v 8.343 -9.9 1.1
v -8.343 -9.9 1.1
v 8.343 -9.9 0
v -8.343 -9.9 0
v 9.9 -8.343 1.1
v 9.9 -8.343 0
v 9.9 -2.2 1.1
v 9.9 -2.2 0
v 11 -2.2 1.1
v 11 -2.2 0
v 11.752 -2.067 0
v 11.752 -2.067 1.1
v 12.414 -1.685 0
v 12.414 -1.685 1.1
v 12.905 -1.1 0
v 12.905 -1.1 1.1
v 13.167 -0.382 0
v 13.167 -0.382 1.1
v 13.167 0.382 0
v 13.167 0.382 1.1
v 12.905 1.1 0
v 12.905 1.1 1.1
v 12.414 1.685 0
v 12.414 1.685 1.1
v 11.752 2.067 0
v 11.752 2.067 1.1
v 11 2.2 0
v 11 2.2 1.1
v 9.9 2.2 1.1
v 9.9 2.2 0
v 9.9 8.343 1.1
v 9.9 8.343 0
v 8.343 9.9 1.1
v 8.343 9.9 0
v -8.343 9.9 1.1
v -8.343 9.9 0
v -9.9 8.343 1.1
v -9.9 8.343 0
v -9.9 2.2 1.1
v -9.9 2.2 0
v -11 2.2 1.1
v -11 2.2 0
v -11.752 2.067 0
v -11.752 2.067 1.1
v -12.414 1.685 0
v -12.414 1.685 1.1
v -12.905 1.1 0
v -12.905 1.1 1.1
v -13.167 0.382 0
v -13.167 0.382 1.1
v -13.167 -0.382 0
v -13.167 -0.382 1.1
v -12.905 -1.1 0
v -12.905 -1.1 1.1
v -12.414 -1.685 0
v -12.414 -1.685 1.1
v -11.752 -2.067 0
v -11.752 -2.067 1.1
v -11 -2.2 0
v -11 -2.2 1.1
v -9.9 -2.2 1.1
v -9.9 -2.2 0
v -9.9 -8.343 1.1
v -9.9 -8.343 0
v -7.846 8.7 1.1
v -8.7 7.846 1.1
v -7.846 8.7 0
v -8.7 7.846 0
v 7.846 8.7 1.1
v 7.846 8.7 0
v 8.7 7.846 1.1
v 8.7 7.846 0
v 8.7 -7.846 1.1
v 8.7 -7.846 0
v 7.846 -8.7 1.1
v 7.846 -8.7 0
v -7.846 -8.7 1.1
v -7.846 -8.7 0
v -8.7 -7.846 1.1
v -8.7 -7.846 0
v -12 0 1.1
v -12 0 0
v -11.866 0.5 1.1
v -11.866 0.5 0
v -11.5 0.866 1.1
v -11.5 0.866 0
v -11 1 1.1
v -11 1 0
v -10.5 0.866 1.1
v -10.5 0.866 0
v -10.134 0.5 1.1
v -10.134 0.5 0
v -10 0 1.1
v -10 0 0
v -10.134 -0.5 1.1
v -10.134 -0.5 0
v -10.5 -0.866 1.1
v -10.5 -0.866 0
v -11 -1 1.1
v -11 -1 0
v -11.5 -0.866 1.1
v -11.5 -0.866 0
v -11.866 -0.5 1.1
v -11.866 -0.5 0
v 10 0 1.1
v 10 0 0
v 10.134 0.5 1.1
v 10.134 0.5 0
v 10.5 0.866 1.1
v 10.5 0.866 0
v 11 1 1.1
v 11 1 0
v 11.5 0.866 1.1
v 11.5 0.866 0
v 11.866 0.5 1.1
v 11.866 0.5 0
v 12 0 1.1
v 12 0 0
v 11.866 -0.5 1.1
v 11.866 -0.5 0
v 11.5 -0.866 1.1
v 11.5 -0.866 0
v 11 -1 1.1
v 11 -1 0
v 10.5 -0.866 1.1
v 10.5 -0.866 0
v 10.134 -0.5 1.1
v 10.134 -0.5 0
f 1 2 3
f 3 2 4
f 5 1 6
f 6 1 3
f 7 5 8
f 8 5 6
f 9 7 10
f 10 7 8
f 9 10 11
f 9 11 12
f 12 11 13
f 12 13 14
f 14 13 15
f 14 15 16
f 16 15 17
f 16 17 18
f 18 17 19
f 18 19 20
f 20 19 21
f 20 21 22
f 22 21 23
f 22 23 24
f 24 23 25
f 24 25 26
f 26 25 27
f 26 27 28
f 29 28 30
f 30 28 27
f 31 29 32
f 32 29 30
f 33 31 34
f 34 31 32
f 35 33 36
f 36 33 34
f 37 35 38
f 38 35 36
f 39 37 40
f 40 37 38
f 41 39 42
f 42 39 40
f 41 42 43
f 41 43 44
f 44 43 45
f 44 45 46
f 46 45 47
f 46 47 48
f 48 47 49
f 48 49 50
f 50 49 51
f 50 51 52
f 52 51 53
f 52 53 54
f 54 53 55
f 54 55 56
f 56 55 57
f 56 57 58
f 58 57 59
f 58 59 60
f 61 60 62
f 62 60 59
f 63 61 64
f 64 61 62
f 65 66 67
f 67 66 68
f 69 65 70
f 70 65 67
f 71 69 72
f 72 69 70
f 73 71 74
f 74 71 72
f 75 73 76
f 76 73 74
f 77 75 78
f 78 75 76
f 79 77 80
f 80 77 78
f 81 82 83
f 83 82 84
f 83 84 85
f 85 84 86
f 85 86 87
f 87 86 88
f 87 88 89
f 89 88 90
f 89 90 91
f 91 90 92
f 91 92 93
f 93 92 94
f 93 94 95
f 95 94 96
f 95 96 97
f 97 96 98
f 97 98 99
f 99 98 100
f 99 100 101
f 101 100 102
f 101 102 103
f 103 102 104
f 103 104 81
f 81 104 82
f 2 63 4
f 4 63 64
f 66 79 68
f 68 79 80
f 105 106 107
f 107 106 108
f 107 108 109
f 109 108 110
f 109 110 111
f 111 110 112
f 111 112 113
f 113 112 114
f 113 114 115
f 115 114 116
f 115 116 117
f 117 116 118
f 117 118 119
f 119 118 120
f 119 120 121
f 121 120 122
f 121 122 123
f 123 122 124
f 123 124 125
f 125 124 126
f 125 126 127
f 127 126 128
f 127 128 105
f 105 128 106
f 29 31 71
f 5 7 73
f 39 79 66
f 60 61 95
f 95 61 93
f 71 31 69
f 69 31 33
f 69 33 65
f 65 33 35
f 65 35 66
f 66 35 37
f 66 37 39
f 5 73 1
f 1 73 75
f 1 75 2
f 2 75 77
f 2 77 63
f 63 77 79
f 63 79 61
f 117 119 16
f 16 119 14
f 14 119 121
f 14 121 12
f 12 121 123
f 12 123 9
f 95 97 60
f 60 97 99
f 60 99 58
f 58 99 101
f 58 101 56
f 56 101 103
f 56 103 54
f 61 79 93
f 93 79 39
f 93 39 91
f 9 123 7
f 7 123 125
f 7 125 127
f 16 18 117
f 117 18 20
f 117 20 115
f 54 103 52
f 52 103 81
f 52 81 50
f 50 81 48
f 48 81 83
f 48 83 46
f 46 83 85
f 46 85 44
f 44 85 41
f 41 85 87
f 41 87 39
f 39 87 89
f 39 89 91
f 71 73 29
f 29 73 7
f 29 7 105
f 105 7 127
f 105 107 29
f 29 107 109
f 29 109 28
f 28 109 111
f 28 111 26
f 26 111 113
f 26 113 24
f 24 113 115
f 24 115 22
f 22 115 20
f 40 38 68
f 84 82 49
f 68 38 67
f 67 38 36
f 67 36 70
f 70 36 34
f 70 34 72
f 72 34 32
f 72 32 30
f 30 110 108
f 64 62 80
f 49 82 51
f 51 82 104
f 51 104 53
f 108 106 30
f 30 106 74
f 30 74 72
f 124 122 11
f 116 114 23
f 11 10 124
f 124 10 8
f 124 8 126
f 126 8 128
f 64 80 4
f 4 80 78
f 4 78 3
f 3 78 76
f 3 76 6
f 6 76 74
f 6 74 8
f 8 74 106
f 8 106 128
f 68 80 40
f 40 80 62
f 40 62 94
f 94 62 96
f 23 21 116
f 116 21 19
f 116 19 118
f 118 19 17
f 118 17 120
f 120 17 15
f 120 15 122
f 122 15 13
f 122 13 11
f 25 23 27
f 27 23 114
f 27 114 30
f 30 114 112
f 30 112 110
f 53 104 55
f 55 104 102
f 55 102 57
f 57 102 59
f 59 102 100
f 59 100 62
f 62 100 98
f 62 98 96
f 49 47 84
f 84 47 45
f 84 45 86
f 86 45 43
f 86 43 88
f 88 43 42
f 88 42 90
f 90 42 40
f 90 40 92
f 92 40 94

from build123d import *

# Parameters (mm, degrees)
SKETCH1_R           = 1
BOSS_EXTRUDE1_DEPTH = 1.1


with BuildPart() as part:
    # Sketch1 → Boss-Extrude1 (new body)
    # profile 1 of 3: a face of its own
    with BuildSketch(Plane.XY):
        Polygon((-8.343354955, 9.9), (-9.9, 8.343354955), (-9.9, 2.2), (-9.9, -2.2), (-9.9, -8.343354955), (-8.343354955, -9.9), (8.343354955, -9.9), (9.9, -8.343354955), (9.9, -2.2), (9.9, 2.2), (9.9, 8.343354955), (8.343354955, 9.9), align=None)
        Polygon((-8.7, -7.84629868), (-8.7, 7.84629868), (-7.84629868, 8.7), (7.84629868, 8.7), (8.7, 7.84629868), (8.7, -7.84629868), (7.84629868, -8.7), (-7.84629868, -8.7), align=None, mode=Mode.SUBTRACT)
    # profile 2 of 3: a face of its own
    with BuildSketch(Plane.XY):
        with BuildLine():
            Line((-9.9, -2.2), (-9.9, 2.2))
            Line((-9.9, 2.2), (-11.000000224, 2.2))
            ThreePointArc((-11.000000224, 2.2), (-13.200000224, 0), (-11.000000224, -2.2))
            Line((-11.000000224, -2.2), (-9.9, -2.2))
        make_face()
        with Locations((-11.000000224, 0)):
            Circle(SKETCH1_R, mode=Mode.SUBTRACT)
    # profile 3 of 3: a face of its own
    with BuildSketch(Plane.XY):
        with BuildLine():
            Line((11, 2.2), (9.9, 2.2))
            Line((9.9, 2.2), (9.9, -2.2))
            Line((9.9, -2.2), (11, -2.2))
            ThreePointArc((11, -2.2), (13.2, 0), (11, 2.2))
        make_face()
        with Locations((11, 0)):
            Circle(SKETCH1_R, mode=Mode.SUBTRACT)
    extrude(amount=BOSS_EXTRUDE1_DEPTH)


solid = part.part
